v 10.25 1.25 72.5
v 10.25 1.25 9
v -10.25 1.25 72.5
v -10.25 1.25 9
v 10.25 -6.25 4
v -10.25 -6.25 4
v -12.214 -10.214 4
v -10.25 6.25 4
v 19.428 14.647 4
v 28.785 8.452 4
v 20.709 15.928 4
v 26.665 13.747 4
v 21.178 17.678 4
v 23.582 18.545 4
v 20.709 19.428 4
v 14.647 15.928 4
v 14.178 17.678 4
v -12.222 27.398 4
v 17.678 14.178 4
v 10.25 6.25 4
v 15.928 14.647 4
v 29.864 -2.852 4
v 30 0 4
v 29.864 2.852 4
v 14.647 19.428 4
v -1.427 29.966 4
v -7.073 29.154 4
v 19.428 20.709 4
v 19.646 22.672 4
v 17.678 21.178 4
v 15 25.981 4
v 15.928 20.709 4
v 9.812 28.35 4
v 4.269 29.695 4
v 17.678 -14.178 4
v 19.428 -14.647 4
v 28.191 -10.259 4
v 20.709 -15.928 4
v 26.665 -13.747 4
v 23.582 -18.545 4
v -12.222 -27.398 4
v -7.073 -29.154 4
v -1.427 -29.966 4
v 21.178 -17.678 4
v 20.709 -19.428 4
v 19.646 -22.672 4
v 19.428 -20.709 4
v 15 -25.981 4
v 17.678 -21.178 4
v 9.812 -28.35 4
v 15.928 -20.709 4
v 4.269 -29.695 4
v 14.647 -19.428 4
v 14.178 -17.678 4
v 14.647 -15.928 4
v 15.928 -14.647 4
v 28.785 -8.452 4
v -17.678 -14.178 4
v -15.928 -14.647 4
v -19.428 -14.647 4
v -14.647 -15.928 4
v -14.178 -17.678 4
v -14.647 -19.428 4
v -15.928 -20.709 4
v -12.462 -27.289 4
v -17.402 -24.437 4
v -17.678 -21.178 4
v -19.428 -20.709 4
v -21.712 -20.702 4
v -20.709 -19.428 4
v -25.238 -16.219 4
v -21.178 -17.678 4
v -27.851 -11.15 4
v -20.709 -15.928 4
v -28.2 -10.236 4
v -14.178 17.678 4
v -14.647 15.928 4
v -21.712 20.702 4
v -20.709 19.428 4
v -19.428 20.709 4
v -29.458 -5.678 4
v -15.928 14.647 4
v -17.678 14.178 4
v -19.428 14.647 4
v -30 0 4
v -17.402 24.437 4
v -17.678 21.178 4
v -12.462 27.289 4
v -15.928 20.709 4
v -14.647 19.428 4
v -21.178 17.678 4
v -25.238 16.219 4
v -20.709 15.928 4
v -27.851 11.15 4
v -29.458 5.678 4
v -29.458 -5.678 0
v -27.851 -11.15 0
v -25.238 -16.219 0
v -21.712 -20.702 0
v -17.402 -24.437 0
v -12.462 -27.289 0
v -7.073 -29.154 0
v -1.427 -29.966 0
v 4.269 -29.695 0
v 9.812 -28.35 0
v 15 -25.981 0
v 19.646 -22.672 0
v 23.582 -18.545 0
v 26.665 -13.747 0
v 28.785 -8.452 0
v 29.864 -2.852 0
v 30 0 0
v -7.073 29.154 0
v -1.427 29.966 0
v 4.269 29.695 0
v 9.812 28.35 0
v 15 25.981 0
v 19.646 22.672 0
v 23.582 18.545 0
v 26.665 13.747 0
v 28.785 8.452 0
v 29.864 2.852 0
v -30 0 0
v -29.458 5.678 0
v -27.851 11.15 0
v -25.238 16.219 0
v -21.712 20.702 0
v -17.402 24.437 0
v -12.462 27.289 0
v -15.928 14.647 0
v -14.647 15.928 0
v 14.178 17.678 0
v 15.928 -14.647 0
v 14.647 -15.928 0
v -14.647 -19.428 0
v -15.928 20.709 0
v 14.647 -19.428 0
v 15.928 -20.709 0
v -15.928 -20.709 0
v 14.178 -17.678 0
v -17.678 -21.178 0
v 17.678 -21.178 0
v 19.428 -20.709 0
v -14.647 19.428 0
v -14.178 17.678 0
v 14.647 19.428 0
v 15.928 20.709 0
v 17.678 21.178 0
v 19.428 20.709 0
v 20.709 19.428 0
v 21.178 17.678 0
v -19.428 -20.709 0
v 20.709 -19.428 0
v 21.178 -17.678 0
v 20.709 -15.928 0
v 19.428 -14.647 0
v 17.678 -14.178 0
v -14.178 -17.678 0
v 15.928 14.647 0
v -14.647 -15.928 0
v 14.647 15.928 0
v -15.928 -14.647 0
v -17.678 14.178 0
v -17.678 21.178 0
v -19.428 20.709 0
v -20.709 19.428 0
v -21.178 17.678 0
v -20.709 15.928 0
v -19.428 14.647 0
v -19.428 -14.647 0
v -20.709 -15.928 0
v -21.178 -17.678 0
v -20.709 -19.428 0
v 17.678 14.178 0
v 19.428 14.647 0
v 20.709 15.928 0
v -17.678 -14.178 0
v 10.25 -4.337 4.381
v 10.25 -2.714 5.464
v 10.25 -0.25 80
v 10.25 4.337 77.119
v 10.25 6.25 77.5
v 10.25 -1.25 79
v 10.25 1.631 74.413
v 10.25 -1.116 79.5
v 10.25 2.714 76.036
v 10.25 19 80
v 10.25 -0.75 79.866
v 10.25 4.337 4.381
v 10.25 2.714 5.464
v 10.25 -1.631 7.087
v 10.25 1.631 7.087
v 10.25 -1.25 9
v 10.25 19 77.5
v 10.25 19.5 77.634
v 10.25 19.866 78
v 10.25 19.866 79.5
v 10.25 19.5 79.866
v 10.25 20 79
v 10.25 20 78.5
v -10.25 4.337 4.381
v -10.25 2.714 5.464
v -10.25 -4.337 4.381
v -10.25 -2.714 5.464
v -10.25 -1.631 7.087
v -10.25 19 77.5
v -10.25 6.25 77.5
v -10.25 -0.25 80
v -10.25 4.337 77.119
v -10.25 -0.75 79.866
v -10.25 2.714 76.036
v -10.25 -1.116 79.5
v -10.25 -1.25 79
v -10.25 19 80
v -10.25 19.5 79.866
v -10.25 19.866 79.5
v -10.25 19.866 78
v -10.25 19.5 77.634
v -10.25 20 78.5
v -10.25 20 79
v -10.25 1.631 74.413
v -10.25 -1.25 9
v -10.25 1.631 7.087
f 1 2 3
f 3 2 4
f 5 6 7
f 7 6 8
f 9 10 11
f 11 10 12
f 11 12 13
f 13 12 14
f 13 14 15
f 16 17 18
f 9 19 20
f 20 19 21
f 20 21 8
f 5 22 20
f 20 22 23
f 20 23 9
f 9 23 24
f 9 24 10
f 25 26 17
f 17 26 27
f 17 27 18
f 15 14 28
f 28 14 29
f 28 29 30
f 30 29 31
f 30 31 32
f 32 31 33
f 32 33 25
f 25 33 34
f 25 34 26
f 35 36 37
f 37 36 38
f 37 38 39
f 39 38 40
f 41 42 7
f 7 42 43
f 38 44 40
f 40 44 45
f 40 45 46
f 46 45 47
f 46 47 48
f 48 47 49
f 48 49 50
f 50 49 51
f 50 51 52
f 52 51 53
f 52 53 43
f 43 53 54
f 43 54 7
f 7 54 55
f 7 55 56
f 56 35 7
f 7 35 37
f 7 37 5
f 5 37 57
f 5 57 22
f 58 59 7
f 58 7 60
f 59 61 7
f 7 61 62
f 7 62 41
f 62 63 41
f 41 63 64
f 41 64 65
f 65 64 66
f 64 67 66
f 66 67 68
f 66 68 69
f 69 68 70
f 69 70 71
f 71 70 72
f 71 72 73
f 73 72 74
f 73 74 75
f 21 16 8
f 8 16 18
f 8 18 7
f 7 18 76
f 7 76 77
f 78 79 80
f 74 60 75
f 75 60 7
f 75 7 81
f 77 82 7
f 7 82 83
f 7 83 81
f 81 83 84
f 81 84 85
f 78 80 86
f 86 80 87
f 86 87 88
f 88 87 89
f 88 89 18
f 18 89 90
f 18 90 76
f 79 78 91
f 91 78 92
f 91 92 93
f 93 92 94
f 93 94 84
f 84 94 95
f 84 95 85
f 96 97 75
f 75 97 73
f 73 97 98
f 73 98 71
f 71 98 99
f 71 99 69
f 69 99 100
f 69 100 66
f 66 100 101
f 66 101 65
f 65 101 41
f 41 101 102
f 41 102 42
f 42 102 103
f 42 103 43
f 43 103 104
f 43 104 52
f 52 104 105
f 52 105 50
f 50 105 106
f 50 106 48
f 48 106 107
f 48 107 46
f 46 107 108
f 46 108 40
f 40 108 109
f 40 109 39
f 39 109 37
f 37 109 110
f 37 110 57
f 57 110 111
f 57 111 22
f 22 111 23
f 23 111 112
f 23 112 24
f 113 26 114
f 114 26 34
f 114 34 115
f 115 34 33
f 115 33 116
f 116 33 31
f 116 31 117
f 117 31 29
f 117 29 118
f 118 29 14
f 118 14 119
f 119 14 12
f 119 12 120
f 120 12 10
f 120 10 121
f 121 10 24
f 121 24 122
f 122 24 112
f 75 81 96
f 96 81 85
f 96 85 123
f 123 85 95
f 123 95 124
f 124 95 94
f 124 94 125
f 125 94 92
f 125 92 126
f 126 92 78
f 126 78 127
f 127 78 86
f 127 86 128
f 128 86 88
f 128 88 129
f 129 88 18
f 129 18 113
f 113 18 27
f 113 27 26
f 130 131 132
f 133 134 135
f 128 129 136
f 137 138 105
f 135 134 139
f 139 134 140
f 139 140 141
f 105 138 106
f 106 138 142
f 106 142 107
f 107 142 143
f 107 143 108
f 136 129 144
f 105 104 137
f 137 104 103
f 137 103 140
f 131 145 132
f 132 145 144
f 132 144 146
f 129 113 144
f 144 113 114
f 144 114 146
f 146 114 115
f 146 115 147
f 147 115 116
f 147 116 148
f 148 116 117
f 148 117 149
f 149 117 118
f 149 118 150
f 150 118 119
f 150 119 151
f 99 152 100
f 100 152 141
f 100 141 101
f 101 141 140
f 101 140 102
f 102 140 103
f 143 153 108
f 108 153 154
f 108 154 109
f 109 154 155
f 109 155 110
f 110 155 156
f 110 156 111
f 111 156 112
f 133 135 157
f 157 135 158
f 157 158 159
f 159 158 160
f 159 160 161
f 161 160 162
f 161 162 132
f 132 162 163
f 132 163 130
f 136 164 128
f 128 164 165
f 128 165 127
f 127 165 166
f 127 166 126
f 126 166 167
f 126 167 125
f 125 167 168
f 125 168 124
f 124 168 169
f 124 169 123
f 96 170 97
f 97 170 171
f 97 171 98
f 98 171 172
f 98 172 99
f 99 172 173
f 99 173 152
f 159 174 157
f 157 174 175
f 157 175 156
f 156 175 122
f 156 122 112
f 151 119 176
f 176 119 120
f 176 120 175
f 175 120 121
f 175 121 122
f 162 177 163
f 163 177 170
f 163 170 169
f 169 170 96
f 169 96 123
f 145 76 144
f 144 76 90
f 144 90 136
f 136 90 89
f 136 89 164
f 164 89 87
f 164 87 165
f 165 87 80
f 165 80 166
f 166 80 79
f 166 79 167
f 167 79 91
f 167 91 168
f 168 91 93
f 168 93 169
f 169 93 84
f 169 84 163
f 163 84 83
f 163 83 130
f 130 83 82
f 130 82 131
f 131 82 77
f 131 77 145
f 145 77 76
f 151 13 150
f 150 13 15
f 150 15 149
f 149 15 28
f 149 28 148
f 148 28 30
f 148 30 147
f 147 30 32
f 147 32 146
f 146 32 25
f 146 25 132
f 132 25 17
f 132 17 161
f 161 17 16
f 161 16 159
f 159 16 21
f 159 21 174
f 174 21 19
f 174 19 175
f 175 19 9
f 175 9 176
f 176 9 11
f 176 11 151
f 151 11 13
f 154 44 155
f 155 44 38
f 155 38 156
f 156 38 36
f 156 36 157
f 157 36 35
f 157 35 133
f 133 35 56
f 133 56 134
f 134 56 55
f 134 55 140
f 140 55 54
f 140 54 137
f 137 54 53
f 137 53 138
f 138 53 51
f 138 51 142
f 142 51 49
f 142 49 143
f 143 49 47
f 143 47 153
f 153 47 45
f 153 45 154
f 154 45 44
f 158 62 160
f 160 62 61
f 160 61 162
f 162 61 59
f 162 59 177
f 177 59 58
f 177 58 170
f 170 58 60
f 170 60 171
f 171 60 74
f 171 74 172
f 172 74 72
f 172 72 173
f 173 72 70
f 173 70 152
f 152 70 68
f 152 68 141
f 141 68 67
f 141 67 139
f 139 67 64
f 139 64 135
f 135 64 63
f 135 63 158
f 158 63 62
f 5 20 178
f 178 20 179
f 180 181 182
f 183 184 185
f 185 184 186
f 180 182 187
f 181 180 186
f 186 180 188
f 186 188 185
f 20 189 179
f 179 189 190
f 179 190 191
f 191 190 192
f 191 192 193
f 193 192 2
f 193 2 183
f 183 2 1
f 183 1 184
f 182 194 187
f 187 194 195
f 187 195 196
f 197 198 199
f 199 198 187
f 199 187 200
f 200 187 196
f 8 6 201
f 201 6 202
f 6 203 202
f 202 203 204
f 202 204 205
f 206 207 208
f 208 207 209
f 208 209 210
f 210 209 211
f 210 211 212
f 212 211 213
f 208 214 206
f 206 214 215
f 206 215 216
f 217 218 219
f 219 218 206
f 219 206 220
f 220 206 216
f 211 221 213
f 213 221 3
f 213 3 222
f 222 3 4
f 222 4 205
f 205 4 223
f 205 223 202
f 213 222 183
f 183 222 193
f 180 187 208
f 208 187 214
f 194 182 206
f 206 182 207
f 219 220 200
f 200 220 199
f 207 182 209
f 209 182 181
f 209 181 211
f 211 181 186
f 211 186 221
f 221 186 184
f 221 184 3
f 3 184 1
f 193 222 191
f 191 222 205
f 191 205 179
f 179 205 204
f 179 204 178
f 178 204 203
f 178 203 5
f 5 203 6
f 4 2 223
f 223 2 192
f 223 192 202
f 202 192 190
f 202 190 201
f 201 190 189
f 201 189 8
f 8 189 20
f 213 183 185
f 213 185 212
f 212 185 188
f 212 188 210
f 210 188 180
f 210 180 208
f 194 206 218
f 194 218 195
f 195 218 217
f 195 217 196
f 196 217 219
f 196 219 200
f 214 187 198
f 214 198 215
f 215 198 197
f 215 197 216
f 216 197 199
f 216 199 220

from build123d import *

# Parameters (mm, degrees)
SKETCH_2_R          = 30
EXTRUDE_1_DEPTH     = 4
SKETCH_3_R          = 3.5
CUT_EXTRUDE_1_DEPTH = 4
SKETCH_14_W         = 20.5
SKETCH_14_H         = 2.5
EXTRUDE_2_DEPTH     = 80
SKETCH_15_W         = 20.5
SKETCH_15_H         = 2.5
EXTRUDE_3_DEPTH     = 20
FILLET_1_R          = 5
FILLET_3_R          = 1


with BuildPart() as part:
    # 草图2 → 凸台-拉伸1 (new body)
    with BuildSketch(Plane.XY):
        Circle(SKETCH_2_R)
    extrude(amount=EXTRUDE_1_DEPTH)

    # 草图3 → 切除-拉伸1 (cut)
    with BuildSketch(Plane.XY.offset(4)):
        with Locations((-17.67766953, 17.67766953)):
            Circle(SKETCH_3_R)
        with Locations(Location((17.67766953, 17.67766953, 0), (0, 0, 180))):
            Circle(SKETCH_3_R)
        with Locations((17.67766953, -17.67766953)):
            Circle(SKETCH_3_R)
        with Locations(Location((-17.67766953, -17.67766953, 0), (0, 0, 180))):
            Circle(SKETCH_3_R)
    extrude(amount=-CUT_EXTRUDE_1_DEPTH, mode=Mode.SUBTRACT)

    # 草图14 → 凸台-拉伸2 (add)
    with BuildSketch(Plane.XY):
        Rectangle(SKETCH_14_W, SKETCH_14_H)
    extrude(amount=EXTRUDE_2_DEPTH)

    # 草图15 → 凸台-拉伸3 (add)
    with BuildSketch(Plane(origin=(0, 0, 0), x_dir=(1, 0, 0), z_dir=(0, 1, 0))):
        with Locations((0, -78.75)):
            Rectangle(SKETCH_15_W, SKETCH_15_H)
    extrude(amount=EXTRUDE_3_DEPTH)

    # 圆角1
    fillet_1_edges = [part.edges().sort_by_distance(p)[0] for p in [
        (0, 1.25, 4),
        (0, -1.25, 4),
        (0, 1.25, 77.5),
    ]]
    fillet(fillet_1_edges, radius=FILLET_1_R)

    # 圆角3
    fillet_3_edges = [part.edges().sort_by_distance(p)[0] for p in [
        (0, -1.25, 80),
        (0, 20, 80),
        (0, 20, 77.5),
    ]]
    fillet(fillet_3_edges, radius=FILLET_3_R)


solid = part.part
